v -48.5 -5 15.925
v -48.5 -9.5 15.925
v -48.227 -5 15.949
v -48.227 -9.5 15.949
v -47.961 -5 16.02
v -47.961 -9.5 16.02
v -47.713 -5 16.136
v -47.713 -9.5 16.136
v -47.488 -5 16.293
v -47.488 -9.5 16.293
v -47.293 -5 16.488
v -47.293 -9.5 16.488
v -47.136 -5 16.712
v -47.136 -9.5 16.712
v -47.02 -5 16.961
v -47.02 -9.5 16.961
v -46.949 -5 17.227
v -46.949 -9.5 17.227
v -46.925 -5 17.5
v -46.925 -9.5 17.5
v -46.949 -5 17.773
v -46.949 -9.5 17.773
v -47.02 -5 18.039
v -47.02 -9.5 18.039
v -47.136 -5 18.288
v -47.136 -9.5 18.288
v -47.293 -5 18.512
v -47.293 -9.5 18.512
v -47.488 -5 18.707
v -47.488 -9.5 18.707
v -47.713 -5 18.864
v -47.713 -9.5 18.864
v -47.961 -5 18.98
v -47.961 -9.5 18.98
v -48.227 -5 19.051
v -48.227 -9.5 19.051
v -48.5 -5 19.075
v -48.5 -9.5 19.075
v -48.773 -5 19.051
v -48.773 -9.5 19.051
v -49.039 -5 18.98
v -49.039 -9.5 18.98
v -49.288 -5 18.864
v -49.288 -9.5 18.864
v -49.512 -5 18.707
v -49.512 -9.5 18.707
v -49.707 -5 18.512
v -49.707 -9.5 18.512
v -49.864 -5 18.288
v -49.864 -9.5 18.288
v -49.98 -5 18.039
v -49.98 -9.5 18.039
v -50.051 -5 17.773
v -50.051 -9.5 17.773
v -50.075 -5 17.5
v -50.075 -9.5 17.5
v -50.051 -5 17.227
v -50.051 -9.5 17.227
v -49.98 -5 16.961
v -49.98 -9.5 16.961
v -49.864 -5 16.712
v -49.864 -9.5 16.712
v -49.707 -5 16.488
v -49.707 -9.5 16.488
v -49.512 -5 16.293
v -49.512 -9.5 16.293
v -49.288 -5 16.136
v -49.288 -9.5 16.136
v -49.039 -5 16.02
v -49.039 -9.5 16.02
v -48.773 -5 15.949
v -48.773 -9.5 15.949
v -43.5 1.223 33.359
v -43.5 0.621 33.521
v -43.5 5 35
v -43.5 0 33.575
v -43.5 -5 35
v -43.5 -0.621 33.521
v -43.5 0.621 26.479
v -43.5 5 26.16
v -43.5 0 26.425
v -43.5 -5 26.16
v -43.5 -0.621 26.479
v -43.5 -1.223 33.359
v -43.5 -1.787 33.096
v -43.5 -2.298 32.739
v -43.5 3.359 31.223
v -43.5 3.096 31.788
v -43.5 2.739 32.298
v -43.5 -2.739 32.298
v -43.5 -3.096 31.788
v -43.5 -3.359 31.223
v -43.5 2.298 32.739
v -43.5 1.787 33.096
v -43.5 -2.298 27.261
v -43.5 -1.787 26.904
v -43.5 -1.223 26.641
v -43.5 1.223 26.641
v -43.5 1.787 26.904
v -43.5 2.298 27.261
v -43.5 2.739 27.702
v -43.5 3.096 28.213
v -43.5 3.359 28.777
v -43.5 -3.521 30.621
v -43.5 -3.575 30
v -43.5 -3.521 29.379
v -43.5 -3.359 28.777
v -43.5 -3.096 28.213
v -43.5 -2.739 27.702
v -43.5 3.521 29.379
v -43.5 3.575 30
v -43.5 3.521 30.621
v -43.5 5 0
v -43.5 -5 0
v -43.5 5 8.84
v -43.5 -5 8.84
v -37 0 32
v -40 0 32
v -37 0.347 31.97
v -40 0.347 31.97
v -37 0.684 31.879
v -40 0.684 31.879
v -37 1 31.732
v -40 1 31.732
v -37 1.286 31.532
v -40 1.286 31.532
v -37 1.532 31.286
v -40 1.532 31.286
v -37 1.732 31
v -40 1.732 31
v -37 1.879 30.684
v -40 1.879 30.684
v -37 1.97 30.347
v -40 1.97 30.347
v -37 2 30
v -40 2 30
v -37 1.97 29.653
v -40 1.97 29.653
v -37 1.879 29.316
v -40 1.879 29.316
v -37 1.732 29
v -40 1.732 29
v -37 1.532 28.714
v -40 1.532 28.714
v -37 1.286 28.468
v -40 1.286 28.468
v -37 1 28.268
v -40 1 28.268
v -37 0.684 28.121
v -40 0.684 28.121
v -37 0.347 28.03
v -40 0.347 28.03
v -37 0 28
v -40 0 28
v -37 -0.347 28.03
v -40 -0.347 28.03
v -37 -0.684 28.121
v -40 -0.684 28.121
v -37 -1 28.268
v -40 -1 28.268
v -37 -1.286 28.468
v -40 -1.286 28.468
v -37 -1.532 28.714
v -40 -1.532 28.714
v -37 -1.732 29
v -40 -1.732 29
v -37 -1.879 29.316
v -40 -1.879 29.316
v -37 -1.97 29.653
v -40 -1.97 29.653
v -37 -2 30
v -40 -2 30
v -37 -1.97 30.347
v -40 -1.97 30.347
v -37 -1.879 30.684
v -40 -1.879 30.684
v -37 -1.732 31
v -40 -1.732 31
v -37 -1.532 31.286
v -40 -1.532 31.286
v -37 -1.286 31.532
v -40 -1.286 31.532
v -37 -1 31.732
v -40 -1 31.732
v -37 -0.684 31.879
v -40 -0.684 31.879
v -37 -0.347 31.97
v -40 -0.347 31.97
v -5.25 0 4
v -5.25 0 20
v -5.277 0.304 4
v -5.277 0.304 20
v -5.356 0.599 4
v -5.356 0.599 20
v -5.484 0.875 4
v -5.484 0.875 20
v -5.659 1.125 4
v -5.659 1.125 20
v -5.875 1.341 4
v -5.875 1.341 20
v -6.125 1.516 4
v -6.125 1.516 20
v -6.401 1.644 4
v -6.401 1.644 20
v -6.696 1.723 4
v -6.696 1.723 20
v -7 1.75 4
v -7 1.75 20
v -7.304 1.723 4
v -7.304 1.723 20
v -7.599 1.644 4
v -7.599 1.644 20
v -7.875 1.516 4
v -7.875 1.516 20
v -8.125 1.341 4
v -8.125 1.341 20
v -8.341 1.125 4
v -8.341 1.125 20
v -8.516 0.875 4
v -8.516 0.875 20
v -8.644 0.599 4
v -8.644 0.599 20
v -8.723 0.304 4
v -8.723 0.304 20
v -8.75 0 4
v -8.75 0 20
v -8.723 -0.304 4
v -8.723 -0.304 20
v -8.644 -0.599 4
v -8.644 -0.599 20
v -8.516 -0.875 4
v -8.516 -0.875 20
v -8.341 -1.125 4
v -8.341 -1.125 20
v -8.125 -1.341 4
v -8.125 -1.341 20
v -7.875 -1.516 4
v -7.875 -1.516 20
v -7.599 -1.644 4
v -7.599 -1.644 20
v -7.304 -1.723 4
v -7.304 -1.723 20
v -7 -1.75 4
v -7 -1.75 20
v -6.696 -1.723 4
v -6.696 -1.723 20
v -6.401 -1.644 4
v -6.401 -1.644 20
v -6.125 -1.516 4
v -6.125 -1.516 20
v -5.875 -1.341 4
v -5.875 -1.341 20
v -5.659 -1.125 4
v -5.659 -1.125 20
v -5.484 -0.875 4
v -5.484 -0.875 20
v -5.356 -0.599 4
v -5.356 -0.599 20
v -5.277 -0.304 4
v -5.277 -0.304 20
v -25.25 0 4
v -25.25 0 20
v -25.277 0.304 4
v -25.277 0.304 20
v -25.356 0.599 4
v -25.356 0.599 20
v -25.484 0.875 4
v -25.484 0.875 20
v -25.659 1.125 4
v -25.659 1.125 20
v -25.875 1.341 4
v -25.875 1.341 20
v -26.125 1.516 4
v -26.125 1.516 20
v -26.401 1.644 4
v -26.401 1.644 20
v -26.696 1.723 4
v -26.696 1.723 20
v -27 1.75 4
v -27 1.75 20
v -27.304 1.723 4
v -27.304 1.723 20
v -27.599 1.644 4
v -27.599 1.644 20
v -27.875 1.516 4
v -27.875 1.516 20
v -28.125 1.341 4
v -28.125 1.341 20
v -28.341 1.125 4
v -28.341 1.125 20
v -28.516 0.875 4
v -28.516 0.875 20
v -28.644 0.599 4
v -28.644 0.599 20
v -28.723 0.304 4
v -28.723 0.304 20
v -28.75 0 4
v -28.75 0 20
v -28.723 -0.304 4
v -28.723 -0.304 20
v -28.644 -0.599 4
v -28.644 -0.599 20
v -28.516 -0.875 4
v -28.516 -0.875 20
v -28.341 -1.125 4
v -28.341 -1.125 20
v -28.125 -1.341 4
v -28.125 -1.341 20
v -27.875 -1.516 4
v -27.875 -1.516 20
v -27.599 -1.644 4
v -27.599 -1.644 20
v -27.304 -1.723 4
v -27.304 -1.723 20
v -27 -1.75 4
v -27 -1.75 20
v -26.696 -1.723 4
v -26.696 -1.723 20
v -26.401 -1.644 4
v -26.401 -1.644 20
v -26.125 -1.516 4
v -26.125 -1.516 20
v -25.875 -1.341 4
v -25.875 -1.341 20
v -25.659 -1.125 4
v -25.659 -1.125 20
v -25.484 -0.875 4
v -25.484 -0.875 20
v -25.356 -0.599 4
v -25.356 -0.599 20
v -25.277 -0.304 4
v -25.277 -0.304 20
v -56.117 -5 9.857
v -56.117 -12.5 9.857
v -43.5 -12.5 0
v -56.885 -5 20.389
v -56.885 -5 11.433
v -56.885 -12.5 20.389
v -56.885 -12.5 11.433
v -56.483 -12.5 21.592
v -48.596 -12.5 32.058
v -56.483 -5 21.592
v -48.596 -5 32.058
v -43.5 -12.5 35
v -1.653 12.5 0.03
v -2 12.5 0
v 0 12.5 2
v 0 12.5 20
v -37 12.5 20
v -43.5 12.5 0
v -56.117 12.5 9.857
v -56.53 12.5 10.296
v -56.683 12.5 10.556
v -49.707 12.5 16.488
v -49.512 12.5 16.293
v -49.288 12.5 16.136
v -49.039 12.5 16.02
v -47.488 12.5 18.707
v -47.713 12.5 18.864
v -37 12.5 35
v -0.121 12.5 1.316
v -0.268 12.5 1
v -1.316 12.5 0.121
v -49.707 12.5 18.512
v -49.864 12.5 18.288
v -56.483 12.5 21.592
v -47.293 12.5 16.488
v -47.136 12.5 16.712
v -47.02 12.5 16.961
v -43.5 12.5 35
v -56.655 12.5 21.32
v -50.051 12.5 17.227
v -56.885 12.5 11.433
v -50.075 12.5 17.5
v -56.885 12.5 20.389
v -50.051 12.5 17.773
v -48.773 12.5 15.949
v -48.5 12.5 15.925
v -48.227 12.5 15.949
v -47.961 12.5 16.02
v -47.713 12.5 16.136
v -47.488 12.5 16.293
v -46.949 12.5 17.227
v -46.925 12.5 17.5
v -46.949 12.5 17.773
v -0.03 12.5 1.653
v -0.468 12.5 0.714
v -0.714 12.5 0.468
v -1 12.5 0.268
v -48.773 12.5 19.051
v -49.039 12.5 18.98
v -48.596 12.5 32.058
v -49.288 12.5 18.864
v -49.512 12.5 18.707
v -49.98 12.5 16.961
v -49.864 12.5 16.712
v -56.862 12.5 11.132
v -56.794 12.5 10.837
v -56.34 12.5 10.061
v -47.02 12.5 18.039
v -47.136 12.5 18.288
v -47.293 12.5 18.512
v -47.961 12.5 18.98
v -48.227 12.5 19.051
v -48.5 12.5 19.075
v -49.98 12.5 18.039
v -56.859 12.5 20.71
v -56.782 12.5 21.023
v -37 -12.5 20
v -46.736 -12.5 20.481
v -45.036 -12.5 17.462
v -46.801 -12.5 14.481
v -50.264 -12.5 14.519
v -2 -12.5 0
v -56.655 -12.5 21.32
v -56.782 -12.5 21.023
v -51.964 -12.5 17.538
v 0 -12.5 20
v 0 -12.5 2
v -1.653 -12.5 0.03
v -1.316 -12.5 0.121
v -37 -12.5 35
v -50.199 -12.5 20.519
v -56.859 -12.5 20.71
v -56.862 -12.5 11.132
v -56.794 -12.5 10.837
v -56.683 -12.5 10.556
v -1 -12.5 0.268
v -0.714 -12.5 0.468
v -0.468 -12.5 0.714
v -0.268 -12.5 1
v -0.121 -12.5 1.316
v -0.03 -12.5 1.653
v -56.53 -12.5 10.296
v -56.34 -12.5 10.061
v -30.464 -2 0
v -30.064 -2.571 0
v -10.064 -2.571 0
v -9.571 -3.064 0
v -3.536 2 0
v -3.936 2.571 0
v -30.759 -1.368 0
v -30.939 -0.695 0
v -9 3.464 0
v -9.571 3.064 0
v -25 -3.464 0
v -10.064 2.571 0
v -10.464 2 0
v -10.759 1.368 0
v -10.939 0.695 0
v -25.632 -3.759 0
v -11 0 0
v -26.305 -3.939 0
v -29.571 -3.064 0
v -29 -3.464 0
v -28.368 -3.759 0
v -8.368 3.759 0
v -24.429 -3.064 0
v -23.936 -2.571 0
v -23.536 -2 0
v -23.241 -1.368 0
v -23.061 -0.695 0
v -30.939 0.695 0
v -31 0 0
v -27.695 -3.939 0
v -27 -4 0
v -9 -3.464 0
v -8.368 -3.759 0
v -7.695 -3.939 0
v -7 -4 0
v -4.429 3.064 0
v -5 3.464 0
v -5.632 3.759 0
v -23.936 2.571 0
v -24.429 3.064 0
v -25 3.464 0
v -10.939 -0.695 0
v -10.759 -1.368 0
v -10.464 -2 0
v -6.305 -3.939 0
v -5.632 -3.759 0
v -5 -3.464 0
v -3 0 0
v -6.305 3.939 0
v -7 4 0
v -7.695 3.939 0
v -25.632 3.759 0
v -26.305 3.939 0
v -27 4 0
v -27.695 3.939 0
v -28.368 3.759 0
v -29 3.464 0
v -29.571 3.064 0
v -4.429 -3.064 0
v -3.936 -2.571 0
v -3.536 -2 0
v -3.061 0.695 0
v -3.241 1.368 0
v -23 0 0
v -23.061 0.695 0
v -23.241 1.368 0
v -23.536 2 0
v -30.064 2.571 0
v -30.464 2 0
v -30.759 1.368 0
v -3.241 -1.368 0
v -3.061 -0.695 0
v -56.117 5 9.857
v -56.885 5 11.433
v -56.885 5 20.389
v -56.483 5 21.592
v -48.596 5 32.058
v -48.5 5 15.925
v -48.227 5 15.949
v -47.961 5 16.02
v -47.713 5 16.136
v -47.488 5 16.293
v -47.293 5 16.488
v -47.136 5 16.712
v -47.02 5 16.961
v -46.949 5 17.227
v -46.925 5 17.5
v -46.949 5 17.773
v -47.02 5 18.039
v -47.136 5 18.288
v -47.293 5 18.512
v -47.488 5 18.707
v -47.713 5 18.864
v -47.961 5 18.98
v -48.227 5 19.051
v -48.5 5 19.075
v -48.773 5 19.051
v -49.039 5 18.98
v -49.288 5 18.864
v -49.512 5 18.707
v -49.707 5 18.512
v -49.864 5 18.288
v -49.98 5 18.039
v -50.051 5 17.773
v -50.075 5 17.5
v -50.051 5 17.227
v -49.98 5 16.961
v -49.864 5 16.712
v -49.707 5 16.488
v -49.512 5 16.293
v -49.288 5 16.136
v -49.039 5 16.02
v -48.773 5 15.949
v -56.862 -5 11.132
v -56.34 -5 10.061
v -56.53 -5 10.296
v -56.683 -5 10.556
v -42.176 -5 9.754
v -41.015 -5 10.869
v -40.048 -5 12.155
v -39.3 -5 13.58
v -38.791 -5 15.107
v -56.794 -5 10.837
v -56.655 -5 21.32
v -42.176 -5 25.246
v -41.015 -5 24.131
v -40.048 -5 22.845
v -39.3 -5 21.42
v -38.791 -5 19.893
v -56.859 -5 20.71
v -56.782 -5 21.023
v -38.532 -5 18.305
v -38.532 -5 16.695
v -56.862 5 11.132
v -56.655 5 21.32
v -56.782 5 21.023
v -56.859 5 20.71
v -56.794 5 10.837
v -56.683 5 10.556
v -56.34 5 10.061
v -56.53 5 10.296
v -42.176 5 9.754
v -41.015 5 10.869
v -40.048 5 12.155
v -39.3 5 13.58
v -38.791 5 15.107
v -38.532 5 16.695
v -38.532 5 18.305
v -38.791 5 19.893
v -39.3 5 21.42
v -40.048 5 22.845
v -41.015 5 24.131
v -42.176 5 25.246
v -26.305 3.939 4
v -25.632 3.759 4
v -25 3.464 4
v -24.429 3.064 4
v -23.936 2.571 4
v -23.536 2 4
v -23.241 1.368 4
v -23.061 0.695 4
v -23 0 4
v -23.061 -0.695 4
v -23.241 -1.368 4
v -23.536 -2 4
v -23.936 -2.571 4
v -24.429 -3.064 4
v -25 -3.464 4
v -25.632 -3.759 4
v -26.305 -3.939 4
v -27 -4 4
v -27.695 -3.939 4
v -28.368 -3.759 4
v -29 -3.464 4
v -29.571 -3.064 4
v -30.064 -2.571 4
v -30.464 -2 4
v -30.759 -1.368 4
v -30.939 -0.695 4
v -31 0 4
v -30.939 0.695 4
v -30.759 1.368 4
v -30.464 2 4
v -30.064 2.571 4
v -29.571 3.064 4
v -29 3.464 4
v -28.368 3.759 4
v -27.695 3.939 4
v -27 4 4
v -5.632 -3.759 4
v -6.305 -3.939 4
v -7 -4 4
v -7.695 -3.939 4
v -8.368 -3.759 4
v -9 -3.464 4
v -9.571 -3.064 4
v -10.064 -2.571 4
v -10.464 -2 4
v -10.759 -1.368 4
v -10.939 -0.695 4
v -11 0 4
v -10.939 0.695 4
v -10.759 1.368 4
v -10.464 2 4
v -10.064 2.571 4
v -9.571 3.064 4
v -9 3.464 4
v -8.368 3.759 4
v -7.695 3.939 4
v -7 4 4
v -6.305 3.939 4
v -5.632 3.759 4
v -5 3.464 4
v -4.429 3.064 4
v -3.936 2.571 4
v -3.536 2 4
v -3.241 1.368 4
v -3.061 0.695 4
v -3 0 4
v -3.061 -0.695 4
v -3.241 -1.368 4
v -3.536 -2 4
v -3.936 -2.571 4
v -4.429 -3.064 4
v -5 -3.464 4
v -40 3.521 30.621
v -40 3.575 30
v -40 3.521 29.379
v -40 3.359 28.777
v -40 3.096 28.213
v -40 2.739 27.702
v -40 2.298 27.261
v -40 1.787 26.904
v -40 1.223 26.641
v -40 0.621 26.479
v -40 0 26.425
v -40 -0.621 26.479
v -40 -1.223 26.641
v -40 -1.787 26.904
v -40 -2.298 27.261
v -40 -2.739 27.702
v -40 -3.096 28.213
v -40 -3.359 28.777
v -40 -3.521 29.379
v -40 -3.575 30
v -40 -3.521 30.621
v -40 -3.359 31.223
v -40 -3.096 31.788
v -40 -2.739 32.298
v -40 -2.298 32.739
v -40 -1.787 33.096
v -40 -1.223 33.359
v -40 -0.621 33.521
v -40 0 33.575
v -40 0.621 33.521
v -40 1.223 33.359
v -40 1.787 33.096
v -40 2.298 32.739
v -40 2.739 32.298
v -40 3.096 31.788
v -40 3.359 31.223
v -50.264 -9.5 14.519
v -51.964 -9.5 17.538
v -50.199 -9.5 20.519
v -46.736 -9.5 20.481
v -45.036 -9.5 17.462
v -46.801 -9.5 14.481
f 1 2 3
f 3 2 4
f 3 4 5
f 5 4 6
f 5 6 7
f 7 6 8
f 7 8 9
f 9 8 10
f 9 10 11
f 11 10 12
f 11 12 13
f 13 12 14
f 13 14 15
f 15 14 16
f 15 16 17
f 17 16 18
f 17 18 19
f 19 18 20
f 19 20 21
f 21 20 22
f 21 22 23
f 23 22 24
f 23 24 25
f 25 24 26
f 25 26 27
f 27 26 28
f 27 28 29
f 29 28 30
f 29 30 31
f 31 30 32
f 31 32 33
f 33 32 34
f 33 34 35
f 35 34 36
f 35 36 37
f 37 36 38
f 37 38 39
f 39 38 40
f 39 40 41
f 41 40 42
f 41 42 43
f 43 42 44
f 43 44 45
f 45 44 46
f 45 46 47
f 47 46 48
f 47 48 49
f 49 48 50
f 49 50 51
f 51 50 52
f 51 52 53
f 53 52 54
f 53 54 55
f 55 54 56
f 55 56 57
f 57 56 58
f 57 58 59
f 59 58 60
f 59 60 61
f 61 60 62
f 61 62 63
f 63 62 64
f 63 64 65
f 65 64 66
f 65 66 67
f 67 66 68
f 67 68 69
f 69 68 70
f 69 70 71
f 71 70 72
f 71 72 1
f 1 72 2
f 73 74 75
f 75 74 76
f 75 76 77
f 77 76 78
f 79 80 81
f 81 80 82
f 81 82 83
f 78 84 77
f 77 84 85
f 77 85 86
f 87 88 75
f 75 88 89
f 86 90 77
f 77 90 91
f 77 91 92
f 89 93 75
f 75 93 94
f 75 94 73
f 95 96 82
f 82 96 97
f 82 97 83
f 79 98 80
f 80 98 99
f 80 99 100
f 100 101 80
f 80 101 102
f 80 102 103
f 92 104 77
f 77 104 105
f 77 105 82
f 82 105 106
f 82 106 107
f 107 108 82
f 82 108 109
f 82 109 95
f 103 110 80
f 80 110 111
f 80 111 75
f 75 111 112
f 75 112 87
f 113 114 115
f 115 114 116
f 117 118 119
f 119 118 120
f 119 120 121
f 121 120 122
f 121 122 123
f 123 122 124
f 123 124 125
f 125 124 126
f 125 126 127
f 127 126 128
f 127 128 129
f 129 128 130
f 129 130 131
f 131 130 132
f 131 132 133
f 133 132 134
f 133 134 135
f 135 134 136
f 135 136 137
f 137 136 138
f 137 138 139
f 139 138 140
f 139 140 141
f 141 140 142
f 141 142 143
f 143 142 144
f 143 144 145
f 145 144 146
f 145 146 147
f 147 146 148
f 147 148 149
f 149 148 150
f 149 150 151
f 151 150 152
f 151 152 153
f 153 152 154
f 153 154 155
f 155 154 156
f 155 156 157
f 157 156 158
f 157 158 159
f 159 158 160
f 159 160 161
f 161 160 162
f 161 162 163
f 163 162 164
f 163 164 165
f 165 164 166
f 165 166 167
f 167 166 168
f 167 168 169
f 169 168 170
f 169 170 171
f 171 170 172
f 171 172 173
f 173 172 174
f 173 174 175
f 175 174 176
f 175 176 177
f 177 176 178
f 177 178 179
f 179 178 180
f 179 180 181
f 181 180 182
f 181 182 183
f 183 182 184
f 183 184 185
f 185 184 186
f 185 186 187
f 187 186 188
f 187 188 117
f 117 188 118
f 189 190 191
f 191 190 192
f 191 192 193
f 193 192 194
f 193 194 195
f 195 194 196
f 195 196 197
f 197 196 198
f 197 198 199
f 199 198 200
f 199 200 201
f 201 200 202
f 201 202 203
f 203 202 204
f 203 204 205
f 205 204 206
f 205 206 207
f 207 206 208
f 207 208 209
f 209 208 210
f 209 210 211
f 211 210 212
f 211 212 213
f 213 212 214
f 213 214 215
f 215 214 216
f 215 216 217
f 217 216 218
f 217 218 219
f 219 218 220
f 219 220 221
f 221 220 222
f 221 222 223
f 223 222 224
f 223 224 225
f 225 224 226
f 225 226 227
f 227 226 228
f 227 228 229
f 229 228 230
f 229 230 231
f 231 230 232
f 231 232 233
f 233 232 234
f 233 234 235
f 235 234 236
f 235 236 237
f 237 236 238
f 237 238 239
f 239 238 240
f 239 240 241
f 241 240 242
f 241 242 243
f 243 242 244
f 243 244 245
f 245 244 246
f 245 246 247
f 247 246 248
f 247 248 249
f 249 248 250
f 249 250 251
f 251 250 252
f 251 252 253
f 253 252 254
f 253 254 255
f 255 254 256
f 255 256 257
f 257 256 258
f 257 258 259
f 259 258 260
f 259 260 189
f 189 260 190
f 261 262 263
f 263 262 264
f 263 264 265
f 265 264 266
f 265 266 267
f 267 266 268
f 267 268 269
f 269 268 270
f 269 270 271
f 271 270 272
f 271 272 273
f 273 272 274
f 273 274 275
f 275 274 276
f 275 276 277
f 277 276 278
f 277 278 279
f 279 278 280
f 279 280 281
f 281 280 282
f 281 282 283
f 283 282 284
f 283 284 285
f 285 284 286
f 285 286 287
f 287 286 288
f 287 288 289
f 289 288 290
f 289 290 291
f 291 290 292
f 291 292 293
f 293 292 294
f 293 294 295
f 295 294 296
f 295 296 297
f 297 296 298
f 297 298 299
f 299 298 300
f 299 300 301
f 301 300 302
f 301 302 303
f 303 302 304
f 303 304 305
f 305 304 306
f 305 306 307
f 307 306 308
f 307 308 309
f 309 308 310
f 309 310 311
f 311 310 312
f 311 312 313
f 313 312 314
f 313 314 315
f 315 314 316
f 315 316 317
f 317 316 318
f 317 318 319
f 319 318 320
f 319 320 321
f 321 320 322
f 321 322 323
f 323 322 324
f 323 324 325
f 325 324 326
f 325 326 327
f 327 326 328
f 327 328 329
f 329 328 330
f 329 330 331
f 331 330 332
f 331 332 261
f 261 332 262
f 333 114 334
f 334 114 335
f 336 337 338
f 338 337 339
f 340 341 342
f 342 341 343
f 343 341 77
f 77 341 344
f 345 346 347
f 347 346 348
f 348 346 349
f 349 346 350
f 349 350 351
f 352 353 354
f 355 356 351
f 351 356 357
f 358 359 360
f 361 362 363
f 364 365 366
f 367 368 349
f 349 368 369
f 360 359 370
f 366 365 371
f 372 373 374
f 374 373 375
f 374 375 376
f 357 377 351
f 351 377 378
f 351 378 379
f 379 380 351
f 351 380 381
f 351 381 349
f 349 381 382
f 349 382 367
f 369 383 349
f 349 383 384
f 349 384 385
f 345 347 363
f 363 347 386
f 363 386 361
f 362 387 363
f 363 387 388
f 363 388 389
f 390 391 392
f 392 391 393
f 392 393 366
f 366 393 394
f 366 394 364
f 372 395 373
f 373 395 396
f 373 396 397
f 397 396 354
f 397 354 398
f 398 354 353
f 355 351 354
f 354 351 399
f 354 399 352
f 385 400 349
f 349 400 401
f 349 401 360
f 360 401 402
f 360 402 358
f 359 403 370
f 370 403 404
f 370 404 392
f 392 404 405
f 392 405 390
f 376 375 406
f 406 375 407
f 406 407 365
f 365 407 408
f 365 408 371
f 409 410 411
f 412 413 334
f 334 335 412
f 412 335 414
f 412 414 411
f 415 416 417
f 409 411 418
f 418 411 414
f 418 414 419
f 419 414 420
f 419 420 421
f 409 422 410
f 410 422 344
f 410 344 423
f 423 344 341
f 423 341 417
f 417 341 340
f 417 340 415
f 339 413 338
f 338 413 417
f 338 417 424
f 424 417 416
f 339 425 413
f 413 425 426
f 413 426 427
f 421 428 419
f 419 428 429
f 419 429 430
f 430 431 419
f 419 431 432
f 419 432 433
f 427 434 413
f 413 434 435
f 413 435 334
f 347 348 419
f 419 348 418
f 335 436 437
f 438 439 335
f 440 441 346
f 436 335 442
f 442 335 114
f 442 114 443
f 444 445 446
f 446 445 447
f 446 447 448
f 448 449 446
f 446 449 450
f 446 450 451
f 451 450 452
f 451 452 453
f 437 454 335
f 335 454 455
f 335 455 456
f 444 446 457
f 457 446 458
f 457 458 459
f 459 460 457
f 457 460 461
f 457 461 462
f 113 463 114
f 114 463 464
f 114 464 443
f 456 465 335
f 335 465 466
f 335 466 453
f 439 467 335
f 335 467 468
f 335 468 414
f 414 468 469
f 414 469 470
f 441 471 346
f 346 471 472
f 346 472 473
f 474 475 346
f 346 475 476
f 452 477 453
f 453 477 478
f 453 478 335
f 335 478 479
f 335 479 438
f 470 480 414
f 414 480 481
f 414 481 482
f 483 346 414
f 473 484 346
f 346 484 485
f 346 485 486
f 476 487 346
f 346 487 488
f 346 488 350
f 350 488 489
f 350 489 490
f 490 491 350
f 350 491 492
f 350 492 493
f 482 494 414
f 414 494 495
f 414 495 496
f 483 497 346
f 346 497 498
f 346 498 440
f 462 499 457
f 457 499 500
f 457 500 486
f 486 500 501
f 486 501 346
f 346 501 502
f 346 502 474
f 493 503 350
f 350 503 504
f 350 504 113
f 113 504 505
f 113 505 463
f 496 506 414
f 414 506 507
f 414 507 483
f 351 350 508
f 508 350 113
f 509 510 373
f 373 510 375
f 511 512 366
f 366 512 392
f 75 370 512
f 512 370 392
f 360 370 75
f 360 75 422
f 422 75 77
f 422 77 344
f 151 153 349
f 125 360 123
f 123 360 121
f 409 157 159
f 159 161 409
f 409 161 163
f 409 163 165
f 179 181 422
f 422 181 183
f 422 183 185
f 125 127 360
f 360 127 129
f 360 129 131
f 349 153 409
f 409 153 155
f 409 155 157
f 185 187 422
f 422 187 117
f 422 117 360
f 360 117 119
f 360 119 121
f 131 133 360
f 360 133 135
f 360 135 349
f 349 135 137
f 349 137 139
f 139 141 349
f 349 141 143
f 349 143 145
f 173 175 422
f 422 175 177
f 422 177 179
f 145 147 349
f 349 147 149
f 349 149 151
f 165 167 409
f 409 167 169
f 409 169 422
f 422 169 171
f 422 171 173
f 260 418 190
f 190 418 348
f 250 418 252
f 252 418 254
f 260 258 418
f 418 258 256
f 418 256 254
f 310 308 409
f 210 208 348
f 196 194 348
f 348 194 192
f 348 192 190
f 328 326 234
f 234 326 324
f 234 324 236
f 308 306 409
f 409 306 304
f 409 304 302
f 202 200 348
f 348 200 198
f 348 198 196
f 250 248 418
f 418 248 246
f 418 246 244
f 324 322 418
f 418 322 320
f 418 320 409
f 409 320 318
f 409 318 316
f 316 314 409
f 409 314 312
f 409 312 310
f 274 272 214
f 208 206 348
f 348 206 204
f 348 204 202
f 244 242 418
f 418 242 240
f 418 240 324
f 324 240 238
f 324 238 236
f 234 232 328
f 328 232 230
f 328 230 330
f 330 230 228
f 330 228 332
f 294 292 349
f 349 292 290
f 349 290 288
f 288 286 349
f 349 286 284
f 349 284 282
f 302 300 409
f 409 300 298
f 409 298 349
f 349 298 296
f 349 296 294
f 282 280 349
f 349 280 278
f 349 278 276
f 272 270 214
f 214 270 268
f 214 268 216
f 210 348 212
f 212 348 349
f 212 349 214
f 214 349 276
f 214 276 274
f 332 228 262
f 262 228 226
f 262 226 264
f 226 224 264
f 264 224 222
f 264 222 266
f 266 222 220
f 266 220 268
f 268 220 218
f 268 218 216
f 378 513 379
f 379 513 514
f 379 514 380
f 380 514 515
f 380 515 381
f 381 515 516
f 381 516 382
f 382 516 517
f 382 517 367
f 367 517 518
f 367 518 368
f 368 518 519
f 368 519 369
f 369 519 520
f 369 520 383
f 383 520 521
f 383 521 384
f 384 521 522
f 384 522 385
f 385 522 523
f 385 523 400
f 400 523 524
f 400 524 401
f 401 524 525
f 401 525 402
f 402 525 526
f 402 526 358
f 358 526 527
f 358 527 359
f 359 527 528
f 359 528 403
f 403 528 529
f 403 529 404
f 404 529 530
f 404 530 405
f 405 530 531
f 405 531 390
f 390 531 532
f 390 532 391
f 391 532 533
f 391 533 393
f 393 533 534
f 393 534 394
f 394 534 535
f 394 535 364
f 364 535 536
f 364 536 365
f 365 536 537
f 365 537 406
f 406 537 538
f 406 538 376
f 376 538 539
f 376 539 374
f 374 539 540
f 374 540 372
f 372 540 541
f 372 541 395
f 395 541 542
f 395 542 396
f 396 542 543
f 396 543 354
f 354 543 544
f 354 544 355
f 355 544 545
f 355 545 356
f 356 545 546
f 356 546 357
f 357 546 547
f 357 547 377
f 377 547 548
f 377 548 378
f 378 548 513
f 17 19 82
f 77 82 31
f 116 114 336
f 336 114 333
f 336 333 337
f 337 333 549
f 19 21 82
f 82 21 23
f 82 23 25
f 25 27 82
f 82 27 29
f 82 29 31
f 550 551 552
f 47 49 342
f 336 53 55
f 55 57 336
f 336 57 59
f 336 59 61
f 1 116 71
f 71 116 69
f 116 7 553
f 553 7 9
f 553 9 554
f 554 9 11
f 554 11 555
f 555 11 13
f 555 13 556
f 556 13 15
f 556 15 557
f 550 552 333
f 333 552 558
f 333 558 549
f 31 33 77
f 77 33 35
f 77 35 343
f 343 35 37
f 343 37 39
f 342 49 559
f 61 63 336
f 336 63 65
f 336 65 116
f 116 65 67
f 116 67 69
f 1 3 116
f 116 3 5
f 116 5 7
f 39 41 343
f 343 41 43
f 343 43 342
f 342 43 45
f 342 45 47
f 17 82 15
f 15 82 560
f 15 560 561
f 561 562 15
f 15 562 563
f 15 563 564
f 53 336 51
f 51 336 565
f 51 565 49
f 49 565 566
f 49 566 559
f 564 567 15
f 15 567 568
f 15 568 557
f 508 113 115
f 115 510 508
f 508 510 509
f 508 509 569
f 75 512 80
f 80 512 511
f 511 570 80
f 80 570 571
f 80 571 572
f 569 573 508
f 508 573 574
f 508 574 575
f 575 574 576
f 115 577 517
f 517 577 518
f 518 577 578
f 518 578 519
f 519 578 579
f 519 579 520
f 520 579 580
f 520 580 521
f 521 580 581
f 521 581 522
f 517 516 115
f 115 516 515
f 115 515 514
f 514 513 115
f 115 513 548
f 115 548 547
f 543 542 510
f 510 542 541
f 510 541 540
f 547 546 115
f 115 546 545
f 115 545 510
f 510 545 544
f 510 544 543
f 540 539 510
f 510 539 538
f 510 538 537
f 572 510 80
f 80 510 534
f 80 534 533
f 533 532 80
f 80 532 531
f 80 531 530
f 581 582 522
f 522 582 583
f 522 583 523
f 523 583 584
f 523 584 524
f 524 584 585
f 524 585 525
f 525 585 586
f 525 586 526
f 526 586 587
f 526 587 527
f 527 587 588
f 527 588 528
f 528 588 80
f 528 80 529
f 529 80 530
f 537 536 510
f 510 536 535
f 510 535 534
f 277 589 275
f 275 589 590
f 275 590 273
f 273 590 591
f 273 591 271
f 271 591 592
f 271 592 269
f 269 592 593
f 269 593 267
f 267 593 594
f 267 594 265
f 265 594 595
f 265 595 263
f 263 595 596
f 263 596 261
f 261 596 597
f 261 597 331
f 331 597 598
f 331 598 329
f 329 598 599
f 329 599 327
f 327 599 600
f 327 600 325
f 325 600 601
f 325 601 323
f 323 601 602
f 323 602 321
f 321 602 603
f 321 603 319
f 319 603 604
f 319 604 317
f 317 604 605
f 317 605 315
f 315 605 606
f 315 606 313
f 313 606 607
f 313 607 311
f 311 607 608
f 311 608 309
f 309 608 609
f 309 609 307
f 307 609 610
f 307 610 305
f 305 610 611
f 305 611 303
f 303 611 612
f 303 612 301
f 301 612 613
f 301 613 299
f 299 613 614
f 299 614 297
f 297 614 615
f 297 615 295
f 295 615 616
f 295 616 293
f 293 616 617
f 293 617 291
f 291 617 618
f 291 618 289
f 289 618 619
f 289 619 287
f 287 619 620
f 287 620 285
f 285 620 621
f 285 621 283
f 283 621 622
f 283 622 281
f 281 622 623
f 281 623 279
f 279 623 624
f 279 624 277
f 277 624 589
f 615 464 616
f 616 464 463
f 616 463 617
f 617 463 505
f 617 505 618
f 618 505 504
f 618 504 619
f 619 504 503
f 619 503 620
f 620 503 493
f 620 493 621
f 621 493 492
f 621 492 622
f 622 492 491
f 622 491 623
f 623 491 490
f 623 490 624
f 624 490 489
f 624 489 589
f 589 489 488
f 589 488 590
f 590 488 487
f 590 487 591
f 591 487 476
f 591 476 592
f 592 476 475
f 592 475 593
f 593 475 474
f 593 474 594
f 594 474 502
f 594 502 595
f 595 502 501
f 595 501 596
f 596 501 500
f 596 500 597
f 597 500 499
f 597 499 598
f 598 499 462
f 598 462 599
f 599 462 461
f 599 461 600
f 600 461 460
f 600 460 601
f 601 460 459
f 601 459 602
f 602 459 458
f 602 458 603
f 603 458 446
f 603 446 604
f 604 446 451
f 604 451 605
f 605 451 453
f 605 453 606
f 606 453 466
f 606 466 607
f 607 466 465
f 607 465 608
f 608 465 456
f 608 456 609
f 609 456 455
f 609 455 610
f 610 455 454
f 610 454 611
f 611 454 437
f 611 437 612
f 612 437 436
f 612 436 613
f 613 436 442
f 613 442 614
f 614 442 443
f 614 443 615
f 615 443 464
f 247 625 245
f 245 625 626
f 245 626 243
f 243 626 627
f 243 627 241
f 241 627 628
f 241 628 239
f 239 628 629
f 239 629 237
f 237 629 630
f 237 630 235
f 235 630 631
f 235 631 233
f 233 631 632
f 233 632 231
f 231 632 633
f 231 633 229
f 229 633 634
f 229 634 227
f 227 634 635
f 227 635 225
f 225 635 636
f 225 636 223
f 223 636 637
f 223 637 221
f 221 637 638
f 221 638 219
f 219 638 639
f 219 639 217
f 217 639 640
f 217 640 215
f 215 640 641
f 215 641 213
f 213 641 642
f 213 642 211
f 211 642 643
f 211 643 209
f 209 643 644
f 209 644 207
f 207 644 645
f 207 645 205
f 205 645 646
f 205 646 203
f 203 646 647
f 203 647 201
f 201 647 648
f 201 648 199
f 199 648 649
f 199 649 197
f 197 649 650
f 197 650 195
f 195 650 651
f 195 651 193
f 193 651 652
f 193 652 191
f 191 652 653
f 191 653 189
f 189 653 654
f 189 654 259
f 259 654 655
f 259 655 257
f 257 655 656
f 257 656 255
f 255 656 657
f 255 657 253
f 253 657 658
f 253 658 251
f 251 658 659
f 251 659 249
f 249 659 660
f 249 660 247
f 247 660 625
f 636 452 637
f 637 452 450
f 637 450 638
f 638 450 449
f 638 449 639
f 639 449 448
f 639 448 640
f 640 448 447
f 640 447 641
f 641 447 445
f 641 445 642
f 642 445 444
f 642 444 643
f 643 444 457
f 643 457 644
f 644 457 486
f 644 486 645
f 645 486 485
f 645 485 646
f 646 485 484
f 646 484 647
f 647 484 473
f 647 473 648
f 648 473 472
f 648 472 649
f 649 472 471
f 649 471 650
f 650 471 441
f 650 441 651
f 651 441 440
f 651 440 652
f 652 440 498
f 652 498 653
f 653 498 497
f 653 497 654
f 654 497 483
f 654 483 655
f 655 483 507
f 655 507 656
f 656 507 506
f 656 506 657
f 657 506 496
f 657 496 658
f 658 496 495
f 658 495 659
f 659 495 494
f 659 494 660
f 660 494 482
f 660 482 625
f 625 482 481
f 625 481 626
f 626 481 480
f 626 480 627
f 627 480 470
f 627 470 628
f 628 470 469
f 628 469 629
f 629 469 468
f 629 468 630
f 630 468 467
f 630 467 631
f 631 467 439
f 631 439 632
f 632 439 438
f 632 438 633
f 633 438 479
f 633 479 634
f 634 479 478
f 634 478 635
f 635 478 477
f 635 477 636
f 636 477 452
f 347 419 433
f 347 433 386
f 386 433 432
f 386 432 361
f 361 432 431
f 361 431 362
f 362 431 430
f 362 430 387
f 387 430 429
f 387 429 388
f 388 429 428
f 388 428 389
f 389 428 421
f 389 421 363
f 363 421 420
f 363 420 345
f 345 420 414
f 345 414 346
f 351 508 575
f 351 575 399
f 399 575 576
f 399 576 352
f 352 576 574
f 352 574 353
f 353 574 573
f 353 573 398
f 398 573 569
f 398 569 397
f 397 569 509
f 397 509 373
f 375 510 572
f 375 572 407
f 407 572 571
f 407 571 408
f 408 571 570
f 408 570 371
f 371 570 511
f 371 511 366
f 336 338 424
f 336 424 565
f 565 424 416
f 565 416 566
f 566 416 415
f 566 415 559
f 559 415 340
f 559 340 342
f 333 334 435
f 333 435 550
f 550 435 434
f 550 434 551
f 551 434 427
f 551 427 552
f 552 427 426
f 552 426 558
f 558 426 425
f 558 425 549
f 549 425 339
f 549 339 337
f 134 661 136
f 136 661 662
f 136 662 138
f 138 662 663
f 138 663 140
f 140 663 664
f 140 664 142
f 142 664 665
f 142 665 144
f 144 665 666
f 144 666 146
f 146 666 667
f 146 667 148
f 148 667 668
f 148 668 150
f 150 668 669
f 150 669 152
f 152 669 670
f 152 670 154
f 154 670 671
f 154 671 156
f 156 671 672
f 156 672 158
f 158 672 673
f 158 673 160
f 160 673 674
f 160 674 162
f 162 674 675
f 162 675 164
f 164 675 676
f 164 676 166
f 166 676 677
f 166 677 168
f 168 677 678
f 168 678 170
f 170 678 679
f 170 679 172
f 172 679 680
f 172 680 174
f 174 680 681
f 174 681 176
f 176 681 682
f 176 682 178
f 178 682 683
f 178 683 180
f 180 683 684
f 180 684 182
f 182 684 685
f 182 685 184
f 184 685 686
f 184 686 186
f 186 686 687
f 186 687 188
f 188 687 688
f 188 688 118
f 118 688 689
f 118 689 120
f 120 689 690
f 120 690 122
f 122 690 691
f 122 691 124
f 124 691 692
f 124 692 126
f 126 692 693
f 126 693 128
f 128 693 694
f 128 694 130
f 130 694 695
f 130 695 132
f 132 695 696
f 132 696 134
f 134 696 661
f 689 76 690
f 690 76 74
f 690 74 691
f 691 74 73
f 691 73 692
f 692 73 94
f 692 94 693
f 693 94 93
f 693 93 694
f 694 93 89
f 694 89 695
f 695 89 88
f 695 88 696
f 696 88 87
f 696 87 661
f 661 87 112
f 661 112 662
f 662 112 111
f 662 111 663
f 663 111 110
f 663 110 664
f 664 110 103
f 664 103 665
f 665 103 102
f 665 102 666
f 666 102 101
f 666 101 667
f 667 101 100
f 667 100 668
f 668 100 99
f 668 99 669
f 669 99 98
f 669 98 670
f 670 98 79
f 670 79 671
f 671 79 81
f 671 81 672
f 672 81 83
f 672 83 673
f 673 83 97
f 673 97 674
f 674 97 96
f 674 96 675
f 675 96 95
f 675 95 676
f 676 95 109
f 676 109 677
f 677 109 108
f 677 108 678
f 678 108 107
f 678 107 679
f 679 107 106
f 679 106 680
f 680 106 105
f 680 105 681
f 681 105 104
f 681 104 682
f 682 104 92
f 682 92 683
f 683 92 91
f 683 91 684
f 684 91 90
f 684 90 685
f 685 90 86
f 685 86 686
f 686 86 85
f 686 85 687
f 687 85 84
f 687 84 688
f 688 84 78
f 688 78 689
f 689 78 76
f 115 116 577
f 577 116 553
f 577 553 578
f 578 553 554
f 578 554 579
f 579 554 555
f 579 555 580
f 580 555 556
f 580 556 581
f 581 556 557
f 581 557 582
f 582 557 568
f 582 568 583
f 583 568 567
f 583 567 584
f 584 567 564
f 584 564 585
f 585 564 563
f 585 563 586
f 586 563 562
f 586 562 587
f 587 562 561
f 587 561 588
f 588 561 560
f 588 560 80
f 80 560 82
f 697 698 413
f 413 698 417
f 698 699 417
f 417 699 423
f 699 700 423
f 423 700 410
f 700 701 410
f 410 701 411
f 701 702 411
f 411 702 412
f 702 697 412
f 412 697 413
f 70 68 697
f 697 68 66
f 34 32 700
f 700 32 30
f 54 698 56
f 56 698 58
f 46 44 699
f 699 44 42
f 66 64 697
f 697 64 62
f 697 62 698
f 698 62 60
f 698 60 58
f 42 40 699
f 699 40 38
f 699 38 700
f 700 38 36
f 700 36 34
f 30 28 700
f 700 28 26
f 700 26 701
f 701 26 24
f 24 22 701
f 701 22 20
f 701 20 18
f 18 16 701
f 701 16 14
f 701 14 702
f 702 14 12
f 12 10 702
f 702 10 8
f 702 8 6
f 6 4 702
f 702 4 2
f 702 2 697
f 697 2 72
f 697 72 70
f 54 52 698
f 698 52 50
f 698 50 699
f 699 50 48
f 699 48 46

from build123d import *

# Parameters (mm, degrees)
SKETCH1_R               = 1.575
BOSS_EXTRUDE1_DEPTH     = 12.5
SKETCH2_W               = 13.385271969
SKETCH2_H               = 10
CUT_EXTRUDE1_DEPTH      = 36
SKETCH3_R               = 1.75
CUT_EXTRUDE2_DEPTH      = 25
SKETCH4_R               = 4
CUT_EXTRUDE3_DEPTH      = 4
FILLET1_R               = 2
SKETCH5_R               = 2
CUT_EXTRUDE4_DEPTH      = 10
SKETCH7_R               = 3.575
CUT_EXTRUDE5_DEPTH      = 3.5
SKETCH8_R               = 10
CUT_EXTRUDE6_DEPTH      = 5
CUT_EXTRUDE6_DEPTH_BACK = 5
CUT_EXTRUDE7_DEPTH      = 3


with BuildPart() as part:
    # Sketch1 → Boss-Extrude1 (new body, symmetric)
    with BuildSketch(Plane(origin=(0, 0, 0), x_dir=(1, 0, 0), z_dir=(0, 1, 0))):
        Polygon((0, 0), (-43.5, 0), (-56.885271969, -10.457720596), (-56.885271969, -21.057720596), (-48.596177418, -32.057720596), (-43.5, -35), (-37, -35), (-37, -20), (0, -20), align=None)
        with Locations((-48.5, -17.5)):
            Circle(SKETCH1_R, mode=Mode.SUBTRACT)
    extrude(amount=BOSS_EXTRUDE1_DEPTH, both=True)

    # Sketch2 → Cut-Extrude1 (cut, through all)
    with BuildSketch(Plane.XY.offset(35)):
        with Locations((-50.192635985, 0)):
            Rectangle(SKETCH2_W, SKETCH2_H)
    extrude(amount=-CUT_EXTRUDE1_DEPTH, mode=Mode.SUBTRACT)

    # Sketch3 → Cut-Extrude2 (cut)
    with BuildSketch(Plane.XY.offset(20)):
        with Locations((-27, 0)):
            Circle(SKETCH3_R)
        with Locations((-7, 0)):
            Circle(SKETCH3_R)
    extrude(amount=-CUT_EXTRUDE2_DEPTH, mode=Mode.SUBTRACT)

    # Sketch4 → Cut-Extrude3 (cut)
    with BuildSketch(Plane(origin=(0, 0, 0), x_dir=(-1, 0, 0), z_dir=(0, 0, -1))):
        with Locations((7, 0)):
            Circle(SKETCH4_R)
        with Locations((27, 0)):
            Circle(SKETCH4_R)
    extrude(amount=-CUT_EXTRUDE3_DEPTH, mode=Mode.SUBTRACT)

    # Fillet1
    fillet1_edges = [part.edges().sort_by_distance(p)[0] for p in [
        (-56.885271969, 8.75, 21.057720596),
        (-56.885271969, 8.75, 10.457720596),
        (0, 0, 0),
        (-56.885271969, -8.75, 21.057720596),
        (-56.885271969, -8.75, 10.457720596),
    ]]
    fillet(fillet1_edges, radius=FILLET1_R)

    # Sketch5 → Cut-Extrude4 (cut)
    with BuildSketch(Plane.ZY.offset(43.5)):
        with Locations((30, 0)):
            Circle(SKETCH5_R)
    extrude(amount=-CUT_EXTRUDE4_DEPTH, mode=Mode.SUBTRACT)

    # Sketch7 → Cut-Extrude5 (cut)
    with BuildSketch(Plane.ZY.offset(43.5)):
        with Locations((30, 0)):
            Circle(SKETCH7_R)
    extrude(amount=-CUT_EXTRUDE5_DEPTH, mode=Mode.SUBTRACT)

    # Sketch8 → Cut-Extrude6 (cut, two sides)
    with BuildSketch(Plane(origin=(0, 0, 0), x_dir=(1, 0, 0), z_dir=(0, 1, 0))) as cut_extrude6_sk:
        with Locations((-48.5, -17.5)):
            Circle(SKETCH8_R)
    extrude(amount=CUT_EXTRUDE6_DEPTH, mode=Mode.SUBTRACT)
    extrude(cut_extrude6_sk.sketch, amount=-CUT_EXTRUDE6_DEPTH_BACK, mode=Mode.SUBTRACT)

    # Sketch9 → Cut-Extrude7 (cut)
    with BuildSketch(Plane.XZ.offset(12.5)):
        Polygon((-46.800589834, 14.481390206), (-45.036102151, 17.462427479), (-46.735512318, 20.481037272), (-50.199410166, 20.518609794), (-51.963897849, 17.537572521), (-50.264487682, 14.518962728), align=None)
    extrude(amount=-CUT_EXTRUDE7_DEPTH, mode=Mode.SUBTRACT)


solid = part.part
